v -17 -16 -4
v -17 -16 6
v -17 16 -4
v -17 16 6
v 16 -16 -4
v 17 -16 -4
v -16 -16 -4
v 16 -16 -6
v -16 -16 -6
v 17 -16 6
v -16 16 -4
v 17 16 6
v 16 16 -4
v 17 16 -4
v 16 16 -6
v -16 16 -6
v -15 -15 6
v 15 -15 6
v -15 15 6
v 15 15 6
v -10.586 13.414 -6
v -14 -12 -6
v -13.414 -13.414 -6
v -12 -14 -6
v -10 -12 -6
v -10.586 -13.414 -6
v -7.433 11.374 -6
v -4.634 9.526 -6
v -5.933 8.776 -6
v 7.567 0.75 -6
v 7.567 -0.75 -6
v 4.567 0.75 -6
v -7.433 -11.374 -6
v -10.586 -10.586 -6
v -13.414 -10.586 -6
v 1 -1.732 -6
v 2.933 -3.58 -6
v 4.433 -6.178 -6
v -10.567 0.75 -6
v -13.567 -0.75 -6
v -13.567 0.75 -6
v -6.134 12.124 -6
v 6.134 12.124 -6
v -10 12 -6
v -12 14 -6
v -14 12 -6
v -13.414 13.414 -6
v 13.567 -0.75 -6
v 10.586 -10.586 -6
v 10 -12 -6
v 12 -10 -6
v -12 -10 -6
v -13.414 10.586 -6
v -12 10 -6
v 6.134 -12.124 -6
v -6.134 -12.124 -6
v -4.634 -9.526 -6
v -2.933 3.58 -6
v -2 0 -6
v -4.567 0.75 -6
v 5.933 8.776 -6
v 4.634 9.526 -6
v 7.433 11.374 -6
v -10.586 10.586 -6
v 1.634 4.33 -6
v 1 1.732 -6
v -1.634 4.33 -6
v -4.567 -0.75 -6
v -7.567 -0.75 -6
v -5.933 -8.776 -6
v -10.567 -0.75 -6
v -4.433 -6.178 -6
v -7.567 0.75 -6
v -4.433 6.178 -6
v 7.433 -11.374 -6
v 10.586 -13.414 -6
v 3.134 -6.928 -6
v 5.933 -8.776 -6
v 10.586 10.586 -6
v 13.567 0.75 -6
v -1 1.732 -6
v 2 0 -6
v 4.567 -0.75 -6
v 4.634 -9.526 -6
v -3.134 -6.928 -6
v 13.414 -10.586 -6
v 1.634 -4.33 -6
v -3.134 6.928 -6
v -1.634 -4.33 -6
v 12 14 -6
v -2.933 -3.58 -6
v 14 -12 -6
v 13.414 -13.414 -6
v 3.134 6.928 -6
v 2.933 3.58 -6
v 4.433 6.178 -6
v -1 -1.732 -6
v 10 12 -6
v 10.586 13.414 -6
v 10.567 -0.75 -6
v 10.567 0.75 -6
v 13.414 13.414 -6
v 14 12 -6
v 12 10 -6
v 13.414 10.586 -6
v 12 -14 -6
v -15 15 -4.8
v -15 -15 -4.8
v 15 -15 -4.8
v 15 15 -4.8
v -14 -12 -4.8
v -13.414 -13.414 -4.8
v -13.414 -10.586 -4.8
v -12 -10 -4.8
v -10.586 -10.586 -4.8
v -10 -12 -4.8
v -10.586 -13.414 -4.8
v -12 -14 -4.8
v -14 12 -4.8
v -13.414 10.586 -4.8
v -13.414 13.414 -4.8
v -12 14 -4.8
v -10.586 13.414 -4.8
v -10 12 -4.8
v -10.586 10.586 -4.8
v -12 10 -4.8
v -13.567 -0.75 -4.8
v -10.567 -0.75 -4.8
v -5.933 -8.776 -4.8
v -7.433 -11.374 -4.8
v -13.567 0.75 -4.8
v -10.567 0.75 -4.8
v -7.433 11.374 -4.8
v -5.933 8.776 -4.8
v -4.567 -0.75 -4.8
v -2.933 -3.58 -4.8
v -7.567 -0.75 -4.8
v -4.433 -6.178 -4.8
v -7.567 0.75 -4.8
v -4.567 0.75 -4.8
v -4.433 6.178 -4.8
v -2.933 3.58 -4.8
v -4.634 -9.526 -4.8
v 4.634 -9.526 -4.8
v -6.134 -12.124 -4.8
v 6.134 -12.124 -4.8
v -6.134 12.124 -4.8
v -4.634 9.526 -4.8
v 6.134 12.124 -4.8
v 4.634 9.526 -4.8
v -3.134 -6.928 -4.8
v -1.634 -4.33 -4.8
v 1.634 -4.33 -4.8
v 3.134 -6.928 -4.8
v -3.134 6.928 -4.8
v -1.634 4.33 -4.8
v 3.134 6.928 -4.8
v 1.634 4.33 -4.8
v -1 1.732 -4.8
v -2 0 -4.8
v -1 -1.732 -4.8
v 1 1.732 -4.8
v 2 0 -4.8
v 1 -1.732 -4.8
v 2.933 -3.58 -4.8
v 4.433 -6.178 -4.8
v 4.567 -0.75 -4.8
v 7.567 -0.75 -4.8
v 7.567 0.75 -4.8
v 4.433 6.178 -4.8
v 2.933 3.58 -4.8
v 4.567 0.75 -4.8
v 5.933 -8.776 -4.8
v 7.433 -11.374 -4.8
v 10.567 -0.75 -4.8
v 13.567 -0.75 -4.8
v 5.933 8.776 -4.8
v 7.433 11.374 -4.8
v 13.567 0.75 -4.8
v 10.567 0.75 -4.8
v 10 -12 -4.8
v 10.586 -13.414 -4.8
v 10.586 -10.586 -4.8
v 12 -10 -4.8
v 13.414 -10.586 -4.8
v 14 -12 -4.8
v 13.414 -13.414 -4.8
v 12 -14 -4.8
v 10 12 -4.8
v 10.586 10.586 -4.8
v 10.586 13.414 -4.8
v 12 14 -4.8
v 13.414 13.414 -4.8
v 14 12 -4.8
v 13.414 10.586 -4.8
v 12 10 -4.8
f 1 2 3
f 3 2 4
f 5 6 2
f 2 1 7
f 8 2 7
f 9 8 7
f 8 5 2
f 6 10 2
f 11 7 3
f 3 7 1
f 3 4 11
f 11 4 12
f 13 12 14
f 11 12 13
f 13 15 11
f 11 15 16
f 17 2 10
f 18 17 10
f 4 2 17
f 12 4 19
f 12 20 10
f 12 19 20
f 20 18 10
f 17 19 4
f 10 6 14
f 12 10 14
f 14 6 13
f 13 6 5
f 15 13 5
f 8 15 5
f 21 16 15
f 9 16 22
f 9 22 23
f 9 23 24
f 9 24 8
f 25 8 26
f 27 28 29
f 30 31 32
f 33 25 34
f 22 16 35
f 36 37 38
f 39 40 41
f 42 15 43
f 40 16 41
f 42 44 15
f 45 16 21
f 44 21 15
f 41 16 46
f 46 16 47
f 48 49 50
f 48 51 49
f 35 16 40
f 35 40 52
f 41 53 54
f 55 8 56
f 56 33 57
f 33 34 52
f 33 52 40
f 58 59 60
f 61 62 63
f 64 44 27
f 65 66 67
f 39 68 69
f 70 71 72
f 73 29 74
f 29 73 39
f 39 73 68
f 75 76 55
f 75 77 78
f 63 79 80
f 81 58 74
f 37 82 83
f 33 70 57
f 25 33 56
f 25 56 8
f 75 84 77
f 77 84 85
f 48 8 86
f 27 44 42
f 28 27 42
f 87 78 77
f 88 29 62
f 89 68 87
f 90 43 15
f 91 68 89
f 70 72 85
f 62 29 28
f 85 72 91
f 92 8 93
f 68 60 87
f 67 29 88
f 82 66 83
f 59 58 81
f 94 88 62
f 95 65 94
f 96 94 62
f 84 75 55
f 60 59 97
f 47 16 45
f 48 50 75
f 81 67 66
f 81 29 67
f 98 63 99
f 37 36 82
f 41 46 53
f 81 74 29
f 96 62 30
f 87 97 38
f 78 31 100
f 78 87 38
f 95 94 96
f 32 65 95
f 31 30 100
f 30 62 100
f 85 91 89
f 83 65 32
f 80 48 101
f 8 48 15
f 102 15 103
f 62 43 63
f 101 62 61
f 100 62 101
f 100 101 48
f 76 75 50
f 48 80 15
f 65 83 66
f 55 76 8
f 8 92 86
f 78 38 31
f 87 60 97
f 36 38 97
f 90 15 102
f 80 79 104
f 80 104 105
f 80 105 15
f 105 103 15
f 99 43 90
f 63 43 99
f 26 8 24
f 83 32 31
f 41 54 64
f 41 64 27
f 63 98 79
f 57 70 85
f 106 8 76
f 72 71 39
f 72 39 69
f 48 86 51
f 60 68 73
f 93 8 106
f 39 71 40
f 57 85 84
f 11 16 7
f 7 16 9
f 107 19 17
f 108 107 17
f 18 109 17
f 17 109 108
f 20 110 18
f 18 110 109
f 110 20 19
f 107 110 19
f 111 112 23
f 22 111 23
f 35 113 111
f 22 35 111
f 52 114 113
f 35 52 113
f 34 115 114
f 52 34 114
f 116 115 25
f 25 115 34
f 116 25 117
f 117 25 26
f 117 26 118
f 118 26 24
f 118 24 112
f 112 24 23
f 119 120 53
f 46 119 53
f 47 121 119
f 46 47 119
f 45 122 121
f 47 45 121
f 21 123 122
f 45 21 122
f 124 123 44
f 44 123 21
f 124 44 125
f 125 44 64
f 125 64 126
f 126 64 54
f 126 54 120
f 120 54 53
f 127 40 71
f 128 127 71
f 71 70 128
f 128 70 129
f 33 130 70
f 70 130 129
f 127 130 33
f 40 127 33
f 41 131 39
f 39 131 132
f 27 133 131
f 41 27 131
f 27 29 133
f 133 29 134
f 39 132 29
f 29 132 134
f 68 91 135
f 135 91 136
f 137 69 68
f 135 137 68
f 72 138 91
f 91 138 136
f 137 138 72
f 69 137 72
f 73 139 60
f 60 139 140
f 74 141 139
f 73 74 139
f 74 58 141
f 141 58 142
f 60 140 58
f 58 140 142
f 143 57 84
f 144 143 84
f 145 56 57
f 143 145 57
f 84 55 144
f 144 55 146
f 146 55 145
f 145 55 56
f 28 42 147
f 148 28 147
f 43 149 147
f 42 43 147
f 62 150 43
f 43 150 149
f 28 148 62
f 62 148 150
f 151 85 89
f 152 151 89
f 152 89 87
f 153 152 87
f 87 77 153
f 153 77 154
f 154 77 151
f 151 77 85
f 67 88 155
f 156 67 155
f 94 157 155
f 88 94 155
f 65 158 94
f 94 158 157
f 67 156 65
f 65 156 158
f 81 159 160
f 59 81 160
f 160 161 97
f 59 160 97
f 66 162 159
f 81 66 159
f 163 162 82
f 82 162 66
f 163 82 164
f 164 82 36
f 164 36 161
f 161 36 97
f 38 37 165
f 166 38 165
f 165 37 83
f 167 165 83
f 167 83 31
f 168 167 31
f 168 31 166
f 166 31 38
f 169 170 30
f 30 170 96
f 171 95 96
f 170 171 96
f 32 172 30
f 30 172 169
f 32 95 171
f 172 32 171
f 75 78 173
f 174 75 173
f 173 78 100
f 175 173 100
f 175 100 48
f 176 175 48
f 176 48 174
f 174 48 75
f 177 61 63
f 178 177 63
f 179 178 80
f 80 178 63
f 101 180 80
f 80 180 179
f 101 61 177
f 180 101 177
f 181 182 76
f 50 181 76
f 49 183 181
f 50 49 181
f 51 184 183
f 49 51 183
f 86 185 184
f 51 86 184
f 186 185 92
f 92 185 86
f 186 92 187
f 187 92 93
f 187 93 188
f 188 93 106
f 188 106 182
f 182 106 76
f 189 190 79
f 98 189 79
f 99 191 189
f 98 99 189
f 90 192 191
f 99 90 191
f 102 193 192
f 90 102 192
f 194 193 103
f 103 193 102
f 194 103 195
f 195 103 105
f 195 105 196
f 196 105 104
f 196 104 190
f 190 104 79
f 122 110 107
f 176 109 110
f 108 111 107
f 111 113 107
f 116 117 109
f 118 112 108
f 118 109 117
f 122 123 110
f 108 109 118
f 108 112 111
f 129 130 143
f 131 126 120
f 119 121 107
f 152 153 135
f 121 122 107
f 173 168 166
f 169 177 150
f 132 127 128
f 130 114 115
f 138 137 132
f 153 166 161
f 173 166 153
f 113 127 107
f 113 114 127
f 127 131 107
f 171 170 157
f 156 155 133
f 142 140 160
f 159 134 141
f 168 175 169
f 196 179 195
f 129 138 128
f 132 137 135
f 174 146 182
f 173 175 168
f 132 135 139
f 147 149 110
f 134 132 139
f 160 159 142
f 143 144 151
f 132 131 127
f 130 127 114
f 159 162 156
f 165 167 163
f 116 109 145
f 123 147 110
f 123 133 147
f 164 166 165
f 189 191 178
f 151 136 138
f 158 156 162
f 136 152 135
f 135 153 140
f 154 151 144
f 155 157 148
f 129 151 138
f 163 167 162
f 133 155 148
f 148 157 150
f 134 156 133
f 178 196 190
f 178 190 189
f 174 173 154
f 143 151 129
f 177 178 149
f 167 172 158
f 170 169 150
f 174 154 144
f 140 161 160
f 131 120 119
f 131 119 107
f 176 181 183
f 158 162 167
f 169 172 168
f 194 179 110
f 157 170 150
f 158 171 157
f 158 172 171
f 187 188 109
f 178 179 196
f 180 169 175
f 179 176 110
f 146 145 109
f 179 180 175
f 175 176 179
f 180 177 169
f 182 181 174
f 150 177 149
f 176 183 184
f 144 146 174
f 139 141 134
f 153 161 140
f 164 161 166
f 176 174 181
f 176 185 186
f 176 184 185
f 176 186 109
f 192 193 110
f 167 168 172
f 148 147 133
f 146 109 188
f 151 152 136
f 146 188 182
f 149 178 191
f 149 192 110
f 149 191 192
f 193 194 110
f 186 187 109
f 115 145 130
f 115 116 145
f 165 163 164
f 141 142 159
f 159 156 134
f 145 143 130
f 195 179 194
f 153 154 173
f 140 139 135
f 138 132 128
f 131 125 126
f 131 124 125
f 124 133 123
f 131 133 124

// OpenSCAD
use <MCAD/boxes.scad>

module fanGrill(y) {
	/*
	for (z = [-11:4:10])
	{
		for (x = [-8.75:4.5:9.25])
			translate([x, z, y])
				cylinder(r=1.5, h=15, center=true, $fn=6);
		for (x = [-11:4.5:11.5])
			translate([x, z+2, y])
				cylinder(r=1.5, h=15, center=true, $fn=6);
	}
	*/

	difference() {
		union() {
			difference() {	
				cylinder(r=14, h=15, center=true, $fn=6);
				cylinder(r=11, h=15, center=true, $fn=6);
			}

			difference() {	
				cylinder(r=8, h=15, center=true, $fn=6);
				cylinder(r=5, h=15, center=true, $fn=6);
			}
		}

		for (a = [0:60:180])
			rotate([0, 0, a])
				cube([30, 1.5, 15], center=true);
	}

	cylinder(r=2, h=15, center=true, $fn=6);
}

difference() {
	cube([34, 32, 12], center=true);
	translate([0, 0, 1.2])
		cube([30, 30, 12], center=true);

	translate([17, 0, -5]) cube([2, 33, 2], center=true);
	translate([-17, 0, -5]) cube([2, 33, 2], center=true);
	
	fanGrill(0);

	translate([ 12,  12, 0]) cylinder(r=2, h=15, center=true, $fn=8);
	translate([ 12, -12, 0]) cylinder(r=2, h=15, center=true, $fn=8);
	translate([-12, -12, 0]) cylinder(r=2, h=15, center=true, $fn=8);
	translate([-12,  12, 0]) cylinder(r=2, h=15, center=true, $fn=8);
}
